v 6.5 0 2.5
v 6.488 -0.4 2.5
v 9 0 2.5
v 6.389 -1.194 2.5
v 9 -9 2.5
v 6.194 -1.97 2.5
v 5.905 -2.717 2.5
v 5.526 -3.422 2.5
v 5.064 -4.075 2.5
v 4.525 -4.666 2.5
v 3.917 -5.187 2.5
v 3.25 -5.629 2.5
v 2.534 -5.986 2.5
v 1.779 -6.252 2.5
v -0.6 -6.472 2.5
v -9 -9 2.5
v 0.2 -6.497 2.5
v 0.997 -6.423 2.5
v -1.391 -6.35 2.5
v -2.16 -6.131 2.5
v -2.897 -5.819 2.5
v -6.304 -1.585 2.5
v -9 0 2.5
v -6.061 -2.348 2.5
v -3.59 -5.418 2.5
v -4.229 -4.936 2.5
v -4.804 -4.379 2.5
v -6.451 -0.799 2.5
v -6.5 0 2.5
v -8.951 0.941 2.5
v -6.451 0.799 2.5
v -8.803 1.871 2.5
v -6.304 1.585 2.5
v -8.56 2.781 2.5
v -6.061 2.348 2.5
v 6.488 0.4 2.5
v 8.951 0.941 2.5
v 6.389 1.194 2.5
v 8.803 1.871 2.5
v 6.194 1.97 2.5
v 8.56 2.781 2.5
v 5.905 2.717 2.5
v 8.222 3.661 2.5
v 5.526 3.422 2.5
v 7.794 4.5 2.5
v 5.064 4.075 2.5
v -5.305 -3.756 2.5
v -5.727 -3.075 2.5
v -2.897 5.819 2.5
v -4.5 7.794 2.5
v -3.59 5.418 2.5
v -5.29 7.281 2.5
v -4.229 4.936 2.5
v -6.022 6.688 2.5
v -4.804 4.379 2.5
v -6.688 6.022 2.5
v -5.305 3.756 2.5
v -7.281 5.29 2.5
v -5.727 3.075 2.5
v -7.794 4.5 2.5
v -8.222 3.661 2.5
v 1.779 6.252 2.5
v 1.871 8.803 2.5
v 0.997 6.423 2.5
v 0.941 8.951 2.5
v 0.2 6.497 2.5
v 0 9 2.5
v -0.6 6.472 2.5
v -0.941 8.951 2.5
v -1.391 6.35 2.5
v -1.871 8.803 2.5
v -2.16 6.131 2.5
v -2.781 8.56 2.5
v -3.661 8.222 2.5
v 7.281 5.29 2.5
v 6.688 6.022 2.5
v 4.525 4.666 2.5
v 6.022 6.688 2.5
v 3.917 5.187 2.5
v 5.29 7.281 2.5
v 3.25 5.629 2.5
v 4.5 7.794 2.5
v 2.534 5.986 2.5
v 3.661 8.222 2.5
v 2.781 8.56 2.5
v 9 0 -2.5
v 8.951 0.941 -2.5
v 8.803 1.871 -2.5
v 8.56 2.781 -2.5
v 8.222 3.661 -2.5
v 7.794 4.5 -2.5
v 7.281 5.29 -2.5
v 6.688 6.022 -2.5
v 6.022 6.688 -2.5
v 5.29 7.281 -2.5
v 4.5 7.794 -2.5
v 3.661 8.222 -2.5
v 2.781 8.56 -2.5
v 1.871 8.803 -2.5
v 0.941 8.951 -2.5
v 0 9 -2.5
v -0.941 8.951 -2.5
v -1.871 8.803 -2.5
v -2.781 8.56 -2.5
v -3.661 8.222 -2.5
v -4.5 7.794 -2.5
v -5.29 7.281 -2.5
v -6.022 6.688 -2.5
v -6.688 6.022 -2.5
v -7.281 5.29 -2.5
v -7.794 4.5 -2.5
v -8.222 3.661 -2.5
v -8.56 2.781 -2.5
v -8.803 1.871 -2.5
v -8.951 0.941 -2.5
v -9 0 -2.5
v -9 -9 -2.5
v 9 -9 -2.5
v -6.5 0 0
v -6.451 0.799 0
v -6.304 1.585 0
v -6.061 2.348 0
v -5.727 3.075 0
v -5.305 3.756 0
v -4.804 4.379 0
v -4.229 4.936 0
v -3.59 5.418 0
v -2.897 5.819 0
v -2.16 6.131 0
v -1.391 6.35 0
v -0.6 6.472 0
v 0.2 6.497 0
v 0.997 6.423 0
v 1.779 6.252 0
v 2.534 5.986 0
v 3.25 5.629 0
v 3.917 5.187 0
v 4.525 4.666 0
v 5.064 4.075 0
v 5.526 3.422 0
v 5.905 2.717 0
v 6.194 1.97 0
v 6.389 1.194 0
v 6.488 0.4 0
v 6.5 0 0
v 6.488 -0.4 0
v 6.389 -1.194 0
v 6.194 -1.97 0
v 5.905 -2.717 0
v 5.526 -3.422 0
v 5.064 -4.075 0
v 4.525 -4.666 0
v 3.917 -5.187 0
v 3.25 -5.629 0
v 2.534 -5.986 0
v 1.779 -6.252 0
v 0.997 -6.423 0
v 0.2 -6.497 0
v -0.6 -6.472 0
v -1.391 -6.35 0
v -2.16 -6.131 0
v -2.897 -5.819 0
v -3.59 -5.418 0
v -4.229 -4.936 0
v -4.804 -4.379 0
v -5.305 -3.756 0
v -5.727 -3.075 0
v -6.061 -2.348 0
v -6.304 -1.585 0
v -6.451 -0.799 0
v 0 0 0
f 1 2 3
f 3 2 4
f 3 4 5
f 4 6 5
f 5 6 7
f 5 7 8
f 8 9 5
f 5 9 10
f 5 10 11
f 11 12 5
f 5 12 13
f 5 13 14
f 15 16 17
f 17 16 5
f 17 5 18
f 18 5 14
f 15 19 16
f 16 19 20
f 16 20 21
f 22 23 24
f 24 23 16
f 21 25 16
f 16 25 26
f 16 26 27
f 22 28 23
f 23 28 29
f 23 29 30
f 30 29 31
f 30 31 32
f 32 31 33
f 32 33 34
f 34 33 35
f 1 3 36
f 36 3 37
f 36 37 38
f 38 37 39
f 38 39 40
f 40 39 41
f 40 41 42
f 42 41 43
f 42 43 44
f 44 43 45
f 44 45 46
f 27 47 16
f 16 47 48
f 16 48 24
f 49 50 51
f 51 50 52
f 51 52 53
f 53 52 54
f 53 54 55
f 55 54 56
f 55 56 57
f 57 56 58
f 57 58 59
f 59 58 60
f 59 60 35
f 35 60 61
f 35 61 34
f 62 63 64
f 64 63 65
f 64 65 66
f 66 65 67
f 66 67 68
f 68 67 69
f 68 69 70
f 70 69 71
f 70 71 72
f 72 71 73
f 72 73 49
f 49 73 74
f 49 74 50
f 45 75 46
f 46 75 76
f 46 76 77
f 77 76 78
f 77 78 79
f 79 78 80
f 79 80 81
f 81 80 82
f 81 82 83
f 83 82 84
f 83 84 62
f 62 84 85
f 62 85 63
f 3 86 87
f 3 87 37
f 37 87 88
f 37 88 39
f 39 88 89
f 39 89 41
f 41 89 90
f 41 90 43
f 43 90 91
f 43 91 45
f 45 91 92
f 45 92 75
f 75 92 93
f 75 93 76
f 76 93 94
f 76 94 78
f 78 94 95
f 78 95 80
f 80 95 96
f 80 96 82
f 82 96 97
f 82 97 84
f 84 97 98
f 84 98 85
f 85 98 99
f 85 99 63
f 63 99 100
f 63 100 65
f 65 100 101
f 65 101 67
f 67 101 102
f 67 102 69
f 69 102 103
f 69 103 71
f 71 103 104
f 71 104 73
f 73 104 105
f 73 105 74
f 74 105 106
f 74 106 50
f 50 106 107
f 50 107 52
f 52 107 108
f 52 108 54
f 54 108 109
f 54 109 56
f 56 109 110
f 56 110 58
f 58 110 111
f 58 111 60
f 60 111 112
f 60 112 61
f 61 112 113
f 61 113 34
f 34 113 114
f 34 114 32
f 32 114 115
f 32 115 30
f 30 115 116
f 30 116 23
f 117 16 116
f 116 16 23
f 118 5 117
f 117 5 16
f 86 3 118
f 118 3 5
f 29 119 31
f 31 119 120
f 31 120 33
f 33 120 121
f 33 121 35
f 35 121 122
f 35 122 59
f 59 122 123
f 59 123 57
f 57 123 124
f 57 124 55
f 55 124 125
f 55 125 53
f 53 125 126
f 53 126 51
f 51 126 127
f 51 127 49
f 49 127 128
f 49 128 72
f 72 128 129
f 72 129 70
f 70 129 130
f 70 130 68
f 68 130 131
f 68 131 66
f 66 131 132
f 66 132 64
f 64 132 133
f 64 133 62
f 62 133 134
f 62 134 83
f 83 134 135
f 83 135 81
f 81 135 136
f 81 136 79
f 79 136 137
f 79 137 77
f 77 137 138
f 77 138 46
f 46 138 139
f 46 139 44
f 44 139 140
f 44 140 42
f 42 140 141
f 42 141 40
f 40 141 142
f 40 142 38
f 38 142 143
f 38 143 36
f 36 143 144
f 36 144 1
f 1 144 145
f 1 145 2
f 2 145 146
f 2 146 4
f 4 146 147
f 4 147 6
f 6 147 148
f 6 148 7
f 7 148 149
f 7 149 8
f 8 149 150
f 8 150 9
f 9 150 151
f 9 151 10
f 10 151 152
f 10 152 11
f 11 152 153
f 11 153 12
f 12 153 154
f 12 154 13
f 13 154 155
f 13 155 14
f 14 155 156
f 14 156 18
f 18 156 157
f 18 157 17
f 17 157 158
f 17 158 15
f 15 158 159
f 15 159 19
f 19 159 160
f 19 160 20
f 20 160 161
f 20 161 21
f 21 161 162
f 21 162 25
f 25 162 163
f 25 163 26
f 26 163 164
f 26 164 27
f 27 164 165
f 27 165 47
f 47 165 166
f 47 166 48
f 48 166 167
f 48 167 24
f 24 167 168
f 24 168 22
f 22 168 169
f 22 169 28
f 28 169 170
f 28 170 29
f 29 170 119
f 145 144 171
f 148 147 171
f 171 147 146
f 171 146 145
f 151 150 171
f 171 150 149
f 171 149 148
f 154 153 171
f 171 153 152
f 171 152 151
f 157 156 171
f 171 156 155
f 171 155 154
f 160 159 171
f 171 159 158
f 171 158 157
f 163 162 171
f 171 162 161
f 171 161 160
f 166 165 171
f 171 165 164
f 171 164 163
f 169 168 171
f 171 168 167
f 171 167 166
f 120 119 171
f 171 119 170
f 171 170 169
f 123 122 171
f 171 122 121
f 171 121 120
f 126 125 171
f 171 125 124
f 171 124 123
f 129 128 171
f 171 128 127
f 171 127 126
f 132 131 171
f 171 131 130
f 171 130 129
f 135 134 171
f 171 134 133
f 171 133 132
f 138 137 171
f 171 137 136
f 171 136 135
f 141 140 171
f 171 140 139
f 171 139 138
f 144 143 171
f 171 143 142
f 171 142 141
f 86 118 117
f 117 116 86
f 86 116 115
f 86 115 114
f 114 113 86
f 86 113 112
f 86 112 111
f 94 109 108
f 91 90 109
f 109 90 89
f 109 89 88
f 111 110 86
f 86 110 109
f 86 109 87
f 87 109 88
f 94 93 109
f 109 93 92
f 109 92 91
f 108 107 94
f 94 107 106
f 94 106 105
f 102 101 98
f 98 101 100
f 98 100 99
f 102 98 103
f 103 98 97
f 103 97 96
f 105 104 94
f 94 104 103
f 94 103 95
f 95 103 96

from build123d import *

# Parameters (mm, degrees)
SKETCH_1_R      = 6.5
EXTRUDE_1_DEPTH = 2.5
EXTRUDE_START   = 2.5
EXTRUDE_2_DEPTH = 2.5


with BuildPart() as part:
    # 草图1 → 凸台-拉伸1 (new body)
    with BuildSketch(Plane.XY):
        with BuildLine():
            Line((-9, 0), (-9, -9))
            Line((-9, -9), (9, -9))
            Line((9, -9), (9, 0))
            ThreePointArc((9, 0), (0, 9), (-9, 0))
        make_face()
        Circle(SKETCH_1_R, mode=Mode.SUBTRACT)
    extrude(amount=EXTRUDE_1_DEPTH)

    # 草图2 → 凸台-拉伸2 (add)
    with BuildSketch(Plane(origin=(0, 0, 0), x_dir=(-1, 0, 0), z_dir=(0, 0, -1)).offset(EXTRUDE_START)):
        with BuildLine():
            Line((-9, 0), (-9, -9))
            Line((-9, -9), (9, -9))
            Line((9, -9), (9, 0))
            ThreePointArc((9, 0), (0, 9), (-9, 0))
        make_face()
    extrude(amount=-EXTRUDE_2_DEPTH)


solid = part.part
